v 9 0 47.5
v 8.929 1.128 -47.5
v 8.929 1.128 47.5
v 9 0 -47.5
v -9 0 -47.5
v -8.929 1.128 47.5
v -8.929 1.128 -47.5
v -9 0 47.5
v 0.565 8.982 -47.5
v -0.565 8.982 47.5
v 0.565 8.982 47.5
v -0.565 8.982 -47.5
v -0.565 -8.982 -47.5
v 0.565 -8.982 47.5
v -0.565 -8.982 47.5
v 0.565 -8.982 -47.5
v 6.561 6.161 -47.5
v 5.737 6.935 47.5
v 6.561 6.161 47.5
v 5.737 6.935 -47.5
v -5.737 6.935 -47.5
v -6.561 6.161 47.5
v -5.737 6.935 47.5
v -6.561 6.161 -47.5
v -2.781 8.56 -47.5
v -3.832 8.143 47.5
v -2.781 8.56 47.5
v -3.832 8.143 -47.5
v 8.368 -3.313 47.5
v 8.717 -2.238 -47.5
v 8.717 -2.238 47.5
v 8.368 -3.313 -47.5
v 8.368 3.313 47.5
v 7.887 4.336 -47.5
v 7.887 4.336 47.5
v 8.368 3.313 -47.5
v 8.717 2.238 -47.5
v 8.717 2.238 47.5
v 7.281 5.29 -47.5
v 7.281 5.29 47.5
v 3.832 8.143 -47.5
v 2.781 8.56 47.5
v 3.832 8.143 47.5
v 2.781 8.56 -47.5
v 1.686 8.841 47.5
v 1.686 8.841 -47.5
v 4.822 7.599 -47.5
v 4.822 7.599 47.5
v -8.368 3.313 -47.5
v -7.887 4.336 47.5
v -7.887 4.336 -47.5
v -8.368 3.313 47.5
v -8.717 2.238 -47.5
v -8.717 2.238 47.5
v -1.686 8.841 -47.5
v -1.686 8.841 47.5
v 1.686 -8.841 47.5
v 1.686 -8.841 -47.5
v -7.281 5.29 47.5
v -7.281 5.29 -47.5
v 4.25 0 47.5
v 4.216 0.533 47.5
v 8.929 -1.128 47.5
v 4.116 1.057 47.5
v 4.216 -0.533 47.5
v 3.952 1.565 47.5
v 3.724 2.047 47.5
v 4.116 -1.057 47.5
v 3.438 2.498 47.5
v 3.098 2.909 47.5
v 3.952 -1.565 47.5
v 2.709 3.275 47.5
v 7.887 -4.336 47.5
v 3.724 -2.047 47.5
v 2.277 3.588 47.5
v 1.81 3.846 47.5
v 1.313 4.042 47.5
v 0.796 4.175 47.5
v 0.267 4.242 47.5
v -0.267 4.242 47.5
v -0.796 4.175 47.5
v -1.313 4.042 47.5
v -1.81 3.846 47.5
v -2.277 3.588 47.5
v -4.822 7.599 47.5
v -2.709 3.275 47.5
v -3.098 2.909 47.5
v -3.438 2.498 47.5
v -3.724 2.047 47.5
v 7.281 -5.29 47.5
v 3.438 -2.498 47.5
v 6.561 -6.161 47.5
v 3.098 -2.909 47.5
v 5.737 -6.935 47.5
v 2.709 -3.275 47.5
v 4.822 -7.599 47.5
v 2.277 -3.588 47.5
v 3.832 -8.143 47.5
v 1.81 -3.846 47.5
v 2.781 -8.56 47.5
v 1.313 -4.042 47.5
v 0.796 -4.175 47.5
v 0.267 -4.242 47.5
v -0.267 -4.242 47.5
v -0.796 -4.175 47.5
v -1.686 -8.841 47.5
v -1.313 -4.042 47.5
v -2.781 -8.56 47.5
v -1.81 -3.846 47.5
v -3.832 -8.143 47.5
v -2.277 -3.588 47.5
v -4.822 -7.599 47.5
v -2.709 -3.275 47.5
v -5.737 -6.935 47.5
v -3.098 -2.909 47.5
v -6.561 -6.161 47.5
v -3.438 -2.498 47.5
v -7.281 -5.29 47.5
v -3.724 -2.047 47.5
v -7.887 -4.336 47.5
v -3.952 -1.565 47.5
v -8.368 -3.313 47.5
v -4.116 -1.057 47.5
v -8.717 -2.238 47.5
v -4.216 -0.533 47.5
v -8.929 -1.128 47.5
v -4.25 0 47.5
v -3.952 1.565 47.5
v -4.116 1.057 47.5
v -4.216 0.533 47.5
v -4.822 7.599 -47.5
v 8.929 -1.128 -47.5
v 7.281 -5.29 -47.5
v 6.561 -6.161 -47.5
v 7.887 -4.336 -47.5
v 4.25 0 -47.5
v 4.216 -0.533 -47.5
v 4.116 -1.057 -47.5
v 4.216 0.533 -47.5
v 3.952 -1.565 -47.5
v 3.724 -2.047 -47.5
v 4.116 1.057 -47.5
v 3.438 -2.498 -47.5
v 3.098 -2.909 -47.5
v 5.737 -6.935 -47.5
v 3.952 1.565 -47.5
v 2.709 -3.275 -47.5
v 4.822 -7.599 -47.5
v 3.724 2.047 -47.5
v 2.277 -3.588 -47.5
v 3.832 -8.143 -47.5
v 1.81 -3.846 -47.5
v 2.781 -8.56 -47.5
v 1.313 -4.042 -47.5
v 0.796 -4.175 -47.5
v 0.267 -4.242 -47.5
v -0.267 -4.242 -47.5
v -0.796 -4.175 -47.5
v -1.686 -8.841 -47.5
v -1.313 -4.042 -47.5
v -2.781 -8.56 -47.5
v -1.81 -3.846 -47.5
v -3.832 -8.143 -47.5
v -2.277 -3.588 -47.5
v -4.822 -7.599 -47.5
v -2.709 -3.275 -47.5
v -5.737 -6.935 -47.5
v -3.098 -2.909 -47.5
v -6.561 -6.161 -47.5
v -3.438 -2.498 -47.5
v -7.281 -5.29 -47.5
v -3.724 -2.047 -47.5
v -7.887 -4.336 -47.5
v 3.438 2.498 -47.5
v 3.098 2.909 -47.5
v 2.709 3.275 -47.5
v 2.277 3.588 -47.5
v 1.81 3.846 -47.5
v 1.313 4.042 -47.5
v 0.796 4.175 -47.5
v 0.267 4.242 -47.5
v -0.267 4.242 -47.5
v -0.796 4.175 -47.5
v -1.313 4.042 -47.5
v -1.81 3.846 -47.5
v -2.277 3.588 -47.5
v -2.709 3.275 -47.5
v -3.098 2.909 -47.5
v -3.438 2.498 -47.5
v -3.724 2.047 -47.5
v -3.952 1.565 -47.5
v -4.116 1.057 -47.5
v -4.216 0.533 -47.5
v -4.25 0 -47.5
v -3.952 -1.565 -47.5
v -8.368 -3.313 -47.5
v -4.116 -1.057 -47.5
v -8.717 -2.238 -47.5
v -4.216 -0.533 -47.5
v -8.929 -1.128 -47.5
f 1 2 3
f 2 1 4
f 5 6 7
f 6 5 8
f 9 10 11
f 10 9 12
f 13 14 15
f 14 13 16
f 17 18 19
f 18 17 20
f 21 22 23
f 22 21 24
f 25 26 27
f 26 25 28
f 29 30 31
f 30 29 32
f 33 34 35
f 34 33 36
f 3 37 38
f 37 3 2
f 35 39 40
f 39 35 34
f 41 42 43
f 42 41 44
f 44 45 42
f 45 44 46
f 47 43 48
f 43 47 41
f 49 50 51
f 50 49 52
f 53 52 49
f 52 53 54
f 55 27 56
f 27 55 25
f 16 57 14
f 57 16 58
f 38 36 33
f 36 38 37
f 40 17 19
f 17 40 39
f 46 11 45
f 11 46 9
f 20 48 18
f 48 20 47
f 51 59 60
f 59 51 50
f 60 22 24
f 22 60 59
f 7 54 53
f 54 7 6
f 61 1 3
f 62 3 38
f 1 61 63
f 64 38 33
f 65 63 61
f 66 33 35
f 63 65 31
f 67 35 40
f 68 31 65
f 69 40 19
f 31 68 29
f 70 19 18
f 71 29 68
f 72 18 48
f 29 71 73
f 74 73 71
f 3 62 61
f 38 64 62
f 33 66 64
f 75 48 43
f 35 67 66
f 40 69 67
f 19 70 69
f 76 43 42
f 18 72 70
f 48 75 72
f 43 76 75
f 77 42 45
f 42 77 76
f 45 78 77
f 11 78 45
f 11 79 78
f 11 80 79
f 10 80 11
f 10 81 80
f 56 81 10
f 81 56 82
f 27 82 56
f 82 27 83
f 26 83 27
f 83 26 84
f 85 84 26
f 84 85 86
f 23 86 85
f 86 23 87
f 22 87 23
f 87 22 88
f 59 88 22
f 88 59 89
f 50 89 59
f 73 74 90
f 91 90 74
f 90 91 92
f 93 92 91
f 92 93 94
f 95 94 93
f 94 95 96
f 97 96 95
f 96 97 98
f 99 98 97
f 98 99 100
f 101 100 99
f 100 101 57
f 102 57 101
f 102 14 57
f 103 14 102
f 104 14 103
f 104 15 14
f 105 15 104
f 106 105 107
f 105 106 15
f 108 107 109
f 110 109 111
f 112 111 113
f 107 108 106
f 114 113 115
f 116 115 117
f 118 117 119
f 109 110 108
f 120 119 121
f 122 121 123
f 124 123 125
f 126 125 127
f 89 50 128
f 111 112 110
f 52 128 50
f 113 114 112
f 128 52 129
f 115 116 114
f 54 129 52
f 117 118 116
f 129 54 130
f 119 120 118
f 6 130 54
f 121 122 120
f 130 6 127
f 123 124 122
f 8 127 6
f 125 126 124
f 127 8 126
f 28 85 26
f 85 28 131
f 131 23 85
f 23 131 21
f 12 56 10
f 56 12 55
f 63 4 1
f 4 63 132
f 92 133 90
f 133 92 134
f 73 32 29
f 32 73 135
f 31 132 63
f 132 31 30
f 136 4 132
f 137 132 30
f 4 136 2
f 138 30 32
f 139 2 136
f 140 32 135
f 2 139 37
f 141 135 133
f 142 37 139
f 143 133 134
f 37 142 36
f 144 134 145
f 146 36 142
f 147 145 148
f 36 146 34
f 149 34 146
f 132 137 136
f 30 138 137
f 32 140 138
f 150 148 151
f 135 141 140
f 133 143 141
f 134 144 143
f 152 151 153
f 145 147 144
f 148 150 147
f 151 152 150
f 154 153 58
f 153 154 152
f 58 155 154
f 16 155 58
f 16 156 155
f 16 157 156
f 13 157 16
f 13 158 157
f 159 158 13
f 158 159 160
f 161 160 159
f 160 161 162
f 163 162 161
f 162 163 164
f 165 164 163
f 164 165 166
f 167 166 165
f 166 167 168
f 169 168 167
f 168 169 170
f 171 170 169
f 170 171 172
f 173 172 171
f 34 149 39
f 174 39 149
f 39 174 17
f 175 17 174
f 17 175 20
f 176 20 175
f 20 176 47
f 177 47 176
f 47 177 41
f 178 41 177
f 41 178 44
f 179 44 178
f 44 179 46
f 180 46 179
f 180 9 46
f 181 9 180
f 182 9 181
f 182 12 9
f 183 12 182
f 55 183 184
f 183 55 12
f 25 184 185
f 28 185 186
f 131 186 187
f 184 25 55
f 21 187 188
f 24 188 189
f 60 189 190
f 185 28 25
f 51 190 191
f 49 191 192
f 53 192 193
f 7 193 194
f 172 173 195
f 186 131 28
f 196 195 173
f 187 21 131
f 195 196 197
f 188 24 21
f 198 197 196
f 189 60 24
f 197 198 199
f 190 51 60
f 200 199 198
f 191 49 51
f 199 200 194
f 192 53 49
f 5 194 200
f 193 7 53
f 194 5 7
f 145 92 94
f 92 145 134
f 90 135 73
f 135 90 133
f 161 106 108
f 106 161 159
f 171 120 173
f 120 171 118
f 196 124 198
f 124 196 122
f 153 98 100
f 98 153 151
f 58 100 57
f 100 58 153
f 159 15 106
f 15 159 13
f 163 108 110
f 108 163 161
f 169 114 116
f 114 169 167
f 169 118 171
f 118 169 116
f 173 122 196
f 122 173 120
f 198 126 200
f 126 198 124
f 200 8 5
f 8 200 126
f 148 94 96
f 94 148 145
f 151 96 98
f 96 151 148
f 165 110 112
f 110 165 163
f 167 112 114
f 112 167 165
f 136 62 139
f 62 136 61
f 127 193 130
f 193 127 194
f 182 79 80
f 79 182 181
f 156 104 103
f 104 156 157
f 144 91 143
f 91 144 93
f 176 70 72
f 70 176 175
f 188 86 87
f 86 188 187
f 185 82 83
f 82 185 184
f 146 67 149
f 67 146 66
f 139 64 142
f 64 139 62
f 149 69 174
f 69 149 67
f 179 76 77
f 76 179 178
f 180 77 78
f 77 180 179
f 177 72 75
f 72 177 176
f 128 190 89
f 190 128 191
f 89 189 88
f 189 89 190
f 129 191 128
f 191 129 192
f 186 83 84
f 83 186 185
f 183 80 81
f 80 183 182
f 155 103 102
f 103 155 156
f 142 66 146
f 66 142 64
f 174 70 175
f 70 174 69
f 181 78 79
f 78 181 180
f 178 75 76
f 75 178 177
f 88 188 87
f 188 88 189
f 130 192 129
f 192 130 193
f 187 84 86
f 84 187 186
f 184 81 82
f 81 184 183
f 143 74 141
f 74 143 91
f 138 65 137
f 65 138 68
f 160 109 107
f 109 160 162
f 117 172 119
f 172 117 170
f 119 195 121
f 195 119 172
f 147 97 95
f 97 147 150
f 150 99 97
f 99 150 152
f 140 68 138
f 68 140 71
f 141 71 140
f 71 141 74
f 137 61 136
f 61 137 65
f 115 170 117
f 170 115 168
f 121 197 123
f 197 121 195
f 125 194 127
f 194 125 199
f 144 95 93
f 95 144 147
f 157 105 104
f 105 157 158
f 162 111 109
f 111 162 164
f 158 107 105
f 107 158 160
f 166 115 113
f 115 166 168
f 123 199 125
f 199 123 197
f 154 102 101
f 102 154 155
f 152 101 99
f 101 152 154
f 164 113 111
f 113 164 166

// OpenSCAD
$fn = 50;


difference() {
	union() {
		translate(v = [0, 0, -47.5000000000]) {
			cylinder(h = 95, r = 9.0000000000);
		}
	}
	union() {
		translate(v = [0, 0, -100.0000000000]) {
			cylinder(h = 200, r = 4.2500000000);
		}
	}
}
